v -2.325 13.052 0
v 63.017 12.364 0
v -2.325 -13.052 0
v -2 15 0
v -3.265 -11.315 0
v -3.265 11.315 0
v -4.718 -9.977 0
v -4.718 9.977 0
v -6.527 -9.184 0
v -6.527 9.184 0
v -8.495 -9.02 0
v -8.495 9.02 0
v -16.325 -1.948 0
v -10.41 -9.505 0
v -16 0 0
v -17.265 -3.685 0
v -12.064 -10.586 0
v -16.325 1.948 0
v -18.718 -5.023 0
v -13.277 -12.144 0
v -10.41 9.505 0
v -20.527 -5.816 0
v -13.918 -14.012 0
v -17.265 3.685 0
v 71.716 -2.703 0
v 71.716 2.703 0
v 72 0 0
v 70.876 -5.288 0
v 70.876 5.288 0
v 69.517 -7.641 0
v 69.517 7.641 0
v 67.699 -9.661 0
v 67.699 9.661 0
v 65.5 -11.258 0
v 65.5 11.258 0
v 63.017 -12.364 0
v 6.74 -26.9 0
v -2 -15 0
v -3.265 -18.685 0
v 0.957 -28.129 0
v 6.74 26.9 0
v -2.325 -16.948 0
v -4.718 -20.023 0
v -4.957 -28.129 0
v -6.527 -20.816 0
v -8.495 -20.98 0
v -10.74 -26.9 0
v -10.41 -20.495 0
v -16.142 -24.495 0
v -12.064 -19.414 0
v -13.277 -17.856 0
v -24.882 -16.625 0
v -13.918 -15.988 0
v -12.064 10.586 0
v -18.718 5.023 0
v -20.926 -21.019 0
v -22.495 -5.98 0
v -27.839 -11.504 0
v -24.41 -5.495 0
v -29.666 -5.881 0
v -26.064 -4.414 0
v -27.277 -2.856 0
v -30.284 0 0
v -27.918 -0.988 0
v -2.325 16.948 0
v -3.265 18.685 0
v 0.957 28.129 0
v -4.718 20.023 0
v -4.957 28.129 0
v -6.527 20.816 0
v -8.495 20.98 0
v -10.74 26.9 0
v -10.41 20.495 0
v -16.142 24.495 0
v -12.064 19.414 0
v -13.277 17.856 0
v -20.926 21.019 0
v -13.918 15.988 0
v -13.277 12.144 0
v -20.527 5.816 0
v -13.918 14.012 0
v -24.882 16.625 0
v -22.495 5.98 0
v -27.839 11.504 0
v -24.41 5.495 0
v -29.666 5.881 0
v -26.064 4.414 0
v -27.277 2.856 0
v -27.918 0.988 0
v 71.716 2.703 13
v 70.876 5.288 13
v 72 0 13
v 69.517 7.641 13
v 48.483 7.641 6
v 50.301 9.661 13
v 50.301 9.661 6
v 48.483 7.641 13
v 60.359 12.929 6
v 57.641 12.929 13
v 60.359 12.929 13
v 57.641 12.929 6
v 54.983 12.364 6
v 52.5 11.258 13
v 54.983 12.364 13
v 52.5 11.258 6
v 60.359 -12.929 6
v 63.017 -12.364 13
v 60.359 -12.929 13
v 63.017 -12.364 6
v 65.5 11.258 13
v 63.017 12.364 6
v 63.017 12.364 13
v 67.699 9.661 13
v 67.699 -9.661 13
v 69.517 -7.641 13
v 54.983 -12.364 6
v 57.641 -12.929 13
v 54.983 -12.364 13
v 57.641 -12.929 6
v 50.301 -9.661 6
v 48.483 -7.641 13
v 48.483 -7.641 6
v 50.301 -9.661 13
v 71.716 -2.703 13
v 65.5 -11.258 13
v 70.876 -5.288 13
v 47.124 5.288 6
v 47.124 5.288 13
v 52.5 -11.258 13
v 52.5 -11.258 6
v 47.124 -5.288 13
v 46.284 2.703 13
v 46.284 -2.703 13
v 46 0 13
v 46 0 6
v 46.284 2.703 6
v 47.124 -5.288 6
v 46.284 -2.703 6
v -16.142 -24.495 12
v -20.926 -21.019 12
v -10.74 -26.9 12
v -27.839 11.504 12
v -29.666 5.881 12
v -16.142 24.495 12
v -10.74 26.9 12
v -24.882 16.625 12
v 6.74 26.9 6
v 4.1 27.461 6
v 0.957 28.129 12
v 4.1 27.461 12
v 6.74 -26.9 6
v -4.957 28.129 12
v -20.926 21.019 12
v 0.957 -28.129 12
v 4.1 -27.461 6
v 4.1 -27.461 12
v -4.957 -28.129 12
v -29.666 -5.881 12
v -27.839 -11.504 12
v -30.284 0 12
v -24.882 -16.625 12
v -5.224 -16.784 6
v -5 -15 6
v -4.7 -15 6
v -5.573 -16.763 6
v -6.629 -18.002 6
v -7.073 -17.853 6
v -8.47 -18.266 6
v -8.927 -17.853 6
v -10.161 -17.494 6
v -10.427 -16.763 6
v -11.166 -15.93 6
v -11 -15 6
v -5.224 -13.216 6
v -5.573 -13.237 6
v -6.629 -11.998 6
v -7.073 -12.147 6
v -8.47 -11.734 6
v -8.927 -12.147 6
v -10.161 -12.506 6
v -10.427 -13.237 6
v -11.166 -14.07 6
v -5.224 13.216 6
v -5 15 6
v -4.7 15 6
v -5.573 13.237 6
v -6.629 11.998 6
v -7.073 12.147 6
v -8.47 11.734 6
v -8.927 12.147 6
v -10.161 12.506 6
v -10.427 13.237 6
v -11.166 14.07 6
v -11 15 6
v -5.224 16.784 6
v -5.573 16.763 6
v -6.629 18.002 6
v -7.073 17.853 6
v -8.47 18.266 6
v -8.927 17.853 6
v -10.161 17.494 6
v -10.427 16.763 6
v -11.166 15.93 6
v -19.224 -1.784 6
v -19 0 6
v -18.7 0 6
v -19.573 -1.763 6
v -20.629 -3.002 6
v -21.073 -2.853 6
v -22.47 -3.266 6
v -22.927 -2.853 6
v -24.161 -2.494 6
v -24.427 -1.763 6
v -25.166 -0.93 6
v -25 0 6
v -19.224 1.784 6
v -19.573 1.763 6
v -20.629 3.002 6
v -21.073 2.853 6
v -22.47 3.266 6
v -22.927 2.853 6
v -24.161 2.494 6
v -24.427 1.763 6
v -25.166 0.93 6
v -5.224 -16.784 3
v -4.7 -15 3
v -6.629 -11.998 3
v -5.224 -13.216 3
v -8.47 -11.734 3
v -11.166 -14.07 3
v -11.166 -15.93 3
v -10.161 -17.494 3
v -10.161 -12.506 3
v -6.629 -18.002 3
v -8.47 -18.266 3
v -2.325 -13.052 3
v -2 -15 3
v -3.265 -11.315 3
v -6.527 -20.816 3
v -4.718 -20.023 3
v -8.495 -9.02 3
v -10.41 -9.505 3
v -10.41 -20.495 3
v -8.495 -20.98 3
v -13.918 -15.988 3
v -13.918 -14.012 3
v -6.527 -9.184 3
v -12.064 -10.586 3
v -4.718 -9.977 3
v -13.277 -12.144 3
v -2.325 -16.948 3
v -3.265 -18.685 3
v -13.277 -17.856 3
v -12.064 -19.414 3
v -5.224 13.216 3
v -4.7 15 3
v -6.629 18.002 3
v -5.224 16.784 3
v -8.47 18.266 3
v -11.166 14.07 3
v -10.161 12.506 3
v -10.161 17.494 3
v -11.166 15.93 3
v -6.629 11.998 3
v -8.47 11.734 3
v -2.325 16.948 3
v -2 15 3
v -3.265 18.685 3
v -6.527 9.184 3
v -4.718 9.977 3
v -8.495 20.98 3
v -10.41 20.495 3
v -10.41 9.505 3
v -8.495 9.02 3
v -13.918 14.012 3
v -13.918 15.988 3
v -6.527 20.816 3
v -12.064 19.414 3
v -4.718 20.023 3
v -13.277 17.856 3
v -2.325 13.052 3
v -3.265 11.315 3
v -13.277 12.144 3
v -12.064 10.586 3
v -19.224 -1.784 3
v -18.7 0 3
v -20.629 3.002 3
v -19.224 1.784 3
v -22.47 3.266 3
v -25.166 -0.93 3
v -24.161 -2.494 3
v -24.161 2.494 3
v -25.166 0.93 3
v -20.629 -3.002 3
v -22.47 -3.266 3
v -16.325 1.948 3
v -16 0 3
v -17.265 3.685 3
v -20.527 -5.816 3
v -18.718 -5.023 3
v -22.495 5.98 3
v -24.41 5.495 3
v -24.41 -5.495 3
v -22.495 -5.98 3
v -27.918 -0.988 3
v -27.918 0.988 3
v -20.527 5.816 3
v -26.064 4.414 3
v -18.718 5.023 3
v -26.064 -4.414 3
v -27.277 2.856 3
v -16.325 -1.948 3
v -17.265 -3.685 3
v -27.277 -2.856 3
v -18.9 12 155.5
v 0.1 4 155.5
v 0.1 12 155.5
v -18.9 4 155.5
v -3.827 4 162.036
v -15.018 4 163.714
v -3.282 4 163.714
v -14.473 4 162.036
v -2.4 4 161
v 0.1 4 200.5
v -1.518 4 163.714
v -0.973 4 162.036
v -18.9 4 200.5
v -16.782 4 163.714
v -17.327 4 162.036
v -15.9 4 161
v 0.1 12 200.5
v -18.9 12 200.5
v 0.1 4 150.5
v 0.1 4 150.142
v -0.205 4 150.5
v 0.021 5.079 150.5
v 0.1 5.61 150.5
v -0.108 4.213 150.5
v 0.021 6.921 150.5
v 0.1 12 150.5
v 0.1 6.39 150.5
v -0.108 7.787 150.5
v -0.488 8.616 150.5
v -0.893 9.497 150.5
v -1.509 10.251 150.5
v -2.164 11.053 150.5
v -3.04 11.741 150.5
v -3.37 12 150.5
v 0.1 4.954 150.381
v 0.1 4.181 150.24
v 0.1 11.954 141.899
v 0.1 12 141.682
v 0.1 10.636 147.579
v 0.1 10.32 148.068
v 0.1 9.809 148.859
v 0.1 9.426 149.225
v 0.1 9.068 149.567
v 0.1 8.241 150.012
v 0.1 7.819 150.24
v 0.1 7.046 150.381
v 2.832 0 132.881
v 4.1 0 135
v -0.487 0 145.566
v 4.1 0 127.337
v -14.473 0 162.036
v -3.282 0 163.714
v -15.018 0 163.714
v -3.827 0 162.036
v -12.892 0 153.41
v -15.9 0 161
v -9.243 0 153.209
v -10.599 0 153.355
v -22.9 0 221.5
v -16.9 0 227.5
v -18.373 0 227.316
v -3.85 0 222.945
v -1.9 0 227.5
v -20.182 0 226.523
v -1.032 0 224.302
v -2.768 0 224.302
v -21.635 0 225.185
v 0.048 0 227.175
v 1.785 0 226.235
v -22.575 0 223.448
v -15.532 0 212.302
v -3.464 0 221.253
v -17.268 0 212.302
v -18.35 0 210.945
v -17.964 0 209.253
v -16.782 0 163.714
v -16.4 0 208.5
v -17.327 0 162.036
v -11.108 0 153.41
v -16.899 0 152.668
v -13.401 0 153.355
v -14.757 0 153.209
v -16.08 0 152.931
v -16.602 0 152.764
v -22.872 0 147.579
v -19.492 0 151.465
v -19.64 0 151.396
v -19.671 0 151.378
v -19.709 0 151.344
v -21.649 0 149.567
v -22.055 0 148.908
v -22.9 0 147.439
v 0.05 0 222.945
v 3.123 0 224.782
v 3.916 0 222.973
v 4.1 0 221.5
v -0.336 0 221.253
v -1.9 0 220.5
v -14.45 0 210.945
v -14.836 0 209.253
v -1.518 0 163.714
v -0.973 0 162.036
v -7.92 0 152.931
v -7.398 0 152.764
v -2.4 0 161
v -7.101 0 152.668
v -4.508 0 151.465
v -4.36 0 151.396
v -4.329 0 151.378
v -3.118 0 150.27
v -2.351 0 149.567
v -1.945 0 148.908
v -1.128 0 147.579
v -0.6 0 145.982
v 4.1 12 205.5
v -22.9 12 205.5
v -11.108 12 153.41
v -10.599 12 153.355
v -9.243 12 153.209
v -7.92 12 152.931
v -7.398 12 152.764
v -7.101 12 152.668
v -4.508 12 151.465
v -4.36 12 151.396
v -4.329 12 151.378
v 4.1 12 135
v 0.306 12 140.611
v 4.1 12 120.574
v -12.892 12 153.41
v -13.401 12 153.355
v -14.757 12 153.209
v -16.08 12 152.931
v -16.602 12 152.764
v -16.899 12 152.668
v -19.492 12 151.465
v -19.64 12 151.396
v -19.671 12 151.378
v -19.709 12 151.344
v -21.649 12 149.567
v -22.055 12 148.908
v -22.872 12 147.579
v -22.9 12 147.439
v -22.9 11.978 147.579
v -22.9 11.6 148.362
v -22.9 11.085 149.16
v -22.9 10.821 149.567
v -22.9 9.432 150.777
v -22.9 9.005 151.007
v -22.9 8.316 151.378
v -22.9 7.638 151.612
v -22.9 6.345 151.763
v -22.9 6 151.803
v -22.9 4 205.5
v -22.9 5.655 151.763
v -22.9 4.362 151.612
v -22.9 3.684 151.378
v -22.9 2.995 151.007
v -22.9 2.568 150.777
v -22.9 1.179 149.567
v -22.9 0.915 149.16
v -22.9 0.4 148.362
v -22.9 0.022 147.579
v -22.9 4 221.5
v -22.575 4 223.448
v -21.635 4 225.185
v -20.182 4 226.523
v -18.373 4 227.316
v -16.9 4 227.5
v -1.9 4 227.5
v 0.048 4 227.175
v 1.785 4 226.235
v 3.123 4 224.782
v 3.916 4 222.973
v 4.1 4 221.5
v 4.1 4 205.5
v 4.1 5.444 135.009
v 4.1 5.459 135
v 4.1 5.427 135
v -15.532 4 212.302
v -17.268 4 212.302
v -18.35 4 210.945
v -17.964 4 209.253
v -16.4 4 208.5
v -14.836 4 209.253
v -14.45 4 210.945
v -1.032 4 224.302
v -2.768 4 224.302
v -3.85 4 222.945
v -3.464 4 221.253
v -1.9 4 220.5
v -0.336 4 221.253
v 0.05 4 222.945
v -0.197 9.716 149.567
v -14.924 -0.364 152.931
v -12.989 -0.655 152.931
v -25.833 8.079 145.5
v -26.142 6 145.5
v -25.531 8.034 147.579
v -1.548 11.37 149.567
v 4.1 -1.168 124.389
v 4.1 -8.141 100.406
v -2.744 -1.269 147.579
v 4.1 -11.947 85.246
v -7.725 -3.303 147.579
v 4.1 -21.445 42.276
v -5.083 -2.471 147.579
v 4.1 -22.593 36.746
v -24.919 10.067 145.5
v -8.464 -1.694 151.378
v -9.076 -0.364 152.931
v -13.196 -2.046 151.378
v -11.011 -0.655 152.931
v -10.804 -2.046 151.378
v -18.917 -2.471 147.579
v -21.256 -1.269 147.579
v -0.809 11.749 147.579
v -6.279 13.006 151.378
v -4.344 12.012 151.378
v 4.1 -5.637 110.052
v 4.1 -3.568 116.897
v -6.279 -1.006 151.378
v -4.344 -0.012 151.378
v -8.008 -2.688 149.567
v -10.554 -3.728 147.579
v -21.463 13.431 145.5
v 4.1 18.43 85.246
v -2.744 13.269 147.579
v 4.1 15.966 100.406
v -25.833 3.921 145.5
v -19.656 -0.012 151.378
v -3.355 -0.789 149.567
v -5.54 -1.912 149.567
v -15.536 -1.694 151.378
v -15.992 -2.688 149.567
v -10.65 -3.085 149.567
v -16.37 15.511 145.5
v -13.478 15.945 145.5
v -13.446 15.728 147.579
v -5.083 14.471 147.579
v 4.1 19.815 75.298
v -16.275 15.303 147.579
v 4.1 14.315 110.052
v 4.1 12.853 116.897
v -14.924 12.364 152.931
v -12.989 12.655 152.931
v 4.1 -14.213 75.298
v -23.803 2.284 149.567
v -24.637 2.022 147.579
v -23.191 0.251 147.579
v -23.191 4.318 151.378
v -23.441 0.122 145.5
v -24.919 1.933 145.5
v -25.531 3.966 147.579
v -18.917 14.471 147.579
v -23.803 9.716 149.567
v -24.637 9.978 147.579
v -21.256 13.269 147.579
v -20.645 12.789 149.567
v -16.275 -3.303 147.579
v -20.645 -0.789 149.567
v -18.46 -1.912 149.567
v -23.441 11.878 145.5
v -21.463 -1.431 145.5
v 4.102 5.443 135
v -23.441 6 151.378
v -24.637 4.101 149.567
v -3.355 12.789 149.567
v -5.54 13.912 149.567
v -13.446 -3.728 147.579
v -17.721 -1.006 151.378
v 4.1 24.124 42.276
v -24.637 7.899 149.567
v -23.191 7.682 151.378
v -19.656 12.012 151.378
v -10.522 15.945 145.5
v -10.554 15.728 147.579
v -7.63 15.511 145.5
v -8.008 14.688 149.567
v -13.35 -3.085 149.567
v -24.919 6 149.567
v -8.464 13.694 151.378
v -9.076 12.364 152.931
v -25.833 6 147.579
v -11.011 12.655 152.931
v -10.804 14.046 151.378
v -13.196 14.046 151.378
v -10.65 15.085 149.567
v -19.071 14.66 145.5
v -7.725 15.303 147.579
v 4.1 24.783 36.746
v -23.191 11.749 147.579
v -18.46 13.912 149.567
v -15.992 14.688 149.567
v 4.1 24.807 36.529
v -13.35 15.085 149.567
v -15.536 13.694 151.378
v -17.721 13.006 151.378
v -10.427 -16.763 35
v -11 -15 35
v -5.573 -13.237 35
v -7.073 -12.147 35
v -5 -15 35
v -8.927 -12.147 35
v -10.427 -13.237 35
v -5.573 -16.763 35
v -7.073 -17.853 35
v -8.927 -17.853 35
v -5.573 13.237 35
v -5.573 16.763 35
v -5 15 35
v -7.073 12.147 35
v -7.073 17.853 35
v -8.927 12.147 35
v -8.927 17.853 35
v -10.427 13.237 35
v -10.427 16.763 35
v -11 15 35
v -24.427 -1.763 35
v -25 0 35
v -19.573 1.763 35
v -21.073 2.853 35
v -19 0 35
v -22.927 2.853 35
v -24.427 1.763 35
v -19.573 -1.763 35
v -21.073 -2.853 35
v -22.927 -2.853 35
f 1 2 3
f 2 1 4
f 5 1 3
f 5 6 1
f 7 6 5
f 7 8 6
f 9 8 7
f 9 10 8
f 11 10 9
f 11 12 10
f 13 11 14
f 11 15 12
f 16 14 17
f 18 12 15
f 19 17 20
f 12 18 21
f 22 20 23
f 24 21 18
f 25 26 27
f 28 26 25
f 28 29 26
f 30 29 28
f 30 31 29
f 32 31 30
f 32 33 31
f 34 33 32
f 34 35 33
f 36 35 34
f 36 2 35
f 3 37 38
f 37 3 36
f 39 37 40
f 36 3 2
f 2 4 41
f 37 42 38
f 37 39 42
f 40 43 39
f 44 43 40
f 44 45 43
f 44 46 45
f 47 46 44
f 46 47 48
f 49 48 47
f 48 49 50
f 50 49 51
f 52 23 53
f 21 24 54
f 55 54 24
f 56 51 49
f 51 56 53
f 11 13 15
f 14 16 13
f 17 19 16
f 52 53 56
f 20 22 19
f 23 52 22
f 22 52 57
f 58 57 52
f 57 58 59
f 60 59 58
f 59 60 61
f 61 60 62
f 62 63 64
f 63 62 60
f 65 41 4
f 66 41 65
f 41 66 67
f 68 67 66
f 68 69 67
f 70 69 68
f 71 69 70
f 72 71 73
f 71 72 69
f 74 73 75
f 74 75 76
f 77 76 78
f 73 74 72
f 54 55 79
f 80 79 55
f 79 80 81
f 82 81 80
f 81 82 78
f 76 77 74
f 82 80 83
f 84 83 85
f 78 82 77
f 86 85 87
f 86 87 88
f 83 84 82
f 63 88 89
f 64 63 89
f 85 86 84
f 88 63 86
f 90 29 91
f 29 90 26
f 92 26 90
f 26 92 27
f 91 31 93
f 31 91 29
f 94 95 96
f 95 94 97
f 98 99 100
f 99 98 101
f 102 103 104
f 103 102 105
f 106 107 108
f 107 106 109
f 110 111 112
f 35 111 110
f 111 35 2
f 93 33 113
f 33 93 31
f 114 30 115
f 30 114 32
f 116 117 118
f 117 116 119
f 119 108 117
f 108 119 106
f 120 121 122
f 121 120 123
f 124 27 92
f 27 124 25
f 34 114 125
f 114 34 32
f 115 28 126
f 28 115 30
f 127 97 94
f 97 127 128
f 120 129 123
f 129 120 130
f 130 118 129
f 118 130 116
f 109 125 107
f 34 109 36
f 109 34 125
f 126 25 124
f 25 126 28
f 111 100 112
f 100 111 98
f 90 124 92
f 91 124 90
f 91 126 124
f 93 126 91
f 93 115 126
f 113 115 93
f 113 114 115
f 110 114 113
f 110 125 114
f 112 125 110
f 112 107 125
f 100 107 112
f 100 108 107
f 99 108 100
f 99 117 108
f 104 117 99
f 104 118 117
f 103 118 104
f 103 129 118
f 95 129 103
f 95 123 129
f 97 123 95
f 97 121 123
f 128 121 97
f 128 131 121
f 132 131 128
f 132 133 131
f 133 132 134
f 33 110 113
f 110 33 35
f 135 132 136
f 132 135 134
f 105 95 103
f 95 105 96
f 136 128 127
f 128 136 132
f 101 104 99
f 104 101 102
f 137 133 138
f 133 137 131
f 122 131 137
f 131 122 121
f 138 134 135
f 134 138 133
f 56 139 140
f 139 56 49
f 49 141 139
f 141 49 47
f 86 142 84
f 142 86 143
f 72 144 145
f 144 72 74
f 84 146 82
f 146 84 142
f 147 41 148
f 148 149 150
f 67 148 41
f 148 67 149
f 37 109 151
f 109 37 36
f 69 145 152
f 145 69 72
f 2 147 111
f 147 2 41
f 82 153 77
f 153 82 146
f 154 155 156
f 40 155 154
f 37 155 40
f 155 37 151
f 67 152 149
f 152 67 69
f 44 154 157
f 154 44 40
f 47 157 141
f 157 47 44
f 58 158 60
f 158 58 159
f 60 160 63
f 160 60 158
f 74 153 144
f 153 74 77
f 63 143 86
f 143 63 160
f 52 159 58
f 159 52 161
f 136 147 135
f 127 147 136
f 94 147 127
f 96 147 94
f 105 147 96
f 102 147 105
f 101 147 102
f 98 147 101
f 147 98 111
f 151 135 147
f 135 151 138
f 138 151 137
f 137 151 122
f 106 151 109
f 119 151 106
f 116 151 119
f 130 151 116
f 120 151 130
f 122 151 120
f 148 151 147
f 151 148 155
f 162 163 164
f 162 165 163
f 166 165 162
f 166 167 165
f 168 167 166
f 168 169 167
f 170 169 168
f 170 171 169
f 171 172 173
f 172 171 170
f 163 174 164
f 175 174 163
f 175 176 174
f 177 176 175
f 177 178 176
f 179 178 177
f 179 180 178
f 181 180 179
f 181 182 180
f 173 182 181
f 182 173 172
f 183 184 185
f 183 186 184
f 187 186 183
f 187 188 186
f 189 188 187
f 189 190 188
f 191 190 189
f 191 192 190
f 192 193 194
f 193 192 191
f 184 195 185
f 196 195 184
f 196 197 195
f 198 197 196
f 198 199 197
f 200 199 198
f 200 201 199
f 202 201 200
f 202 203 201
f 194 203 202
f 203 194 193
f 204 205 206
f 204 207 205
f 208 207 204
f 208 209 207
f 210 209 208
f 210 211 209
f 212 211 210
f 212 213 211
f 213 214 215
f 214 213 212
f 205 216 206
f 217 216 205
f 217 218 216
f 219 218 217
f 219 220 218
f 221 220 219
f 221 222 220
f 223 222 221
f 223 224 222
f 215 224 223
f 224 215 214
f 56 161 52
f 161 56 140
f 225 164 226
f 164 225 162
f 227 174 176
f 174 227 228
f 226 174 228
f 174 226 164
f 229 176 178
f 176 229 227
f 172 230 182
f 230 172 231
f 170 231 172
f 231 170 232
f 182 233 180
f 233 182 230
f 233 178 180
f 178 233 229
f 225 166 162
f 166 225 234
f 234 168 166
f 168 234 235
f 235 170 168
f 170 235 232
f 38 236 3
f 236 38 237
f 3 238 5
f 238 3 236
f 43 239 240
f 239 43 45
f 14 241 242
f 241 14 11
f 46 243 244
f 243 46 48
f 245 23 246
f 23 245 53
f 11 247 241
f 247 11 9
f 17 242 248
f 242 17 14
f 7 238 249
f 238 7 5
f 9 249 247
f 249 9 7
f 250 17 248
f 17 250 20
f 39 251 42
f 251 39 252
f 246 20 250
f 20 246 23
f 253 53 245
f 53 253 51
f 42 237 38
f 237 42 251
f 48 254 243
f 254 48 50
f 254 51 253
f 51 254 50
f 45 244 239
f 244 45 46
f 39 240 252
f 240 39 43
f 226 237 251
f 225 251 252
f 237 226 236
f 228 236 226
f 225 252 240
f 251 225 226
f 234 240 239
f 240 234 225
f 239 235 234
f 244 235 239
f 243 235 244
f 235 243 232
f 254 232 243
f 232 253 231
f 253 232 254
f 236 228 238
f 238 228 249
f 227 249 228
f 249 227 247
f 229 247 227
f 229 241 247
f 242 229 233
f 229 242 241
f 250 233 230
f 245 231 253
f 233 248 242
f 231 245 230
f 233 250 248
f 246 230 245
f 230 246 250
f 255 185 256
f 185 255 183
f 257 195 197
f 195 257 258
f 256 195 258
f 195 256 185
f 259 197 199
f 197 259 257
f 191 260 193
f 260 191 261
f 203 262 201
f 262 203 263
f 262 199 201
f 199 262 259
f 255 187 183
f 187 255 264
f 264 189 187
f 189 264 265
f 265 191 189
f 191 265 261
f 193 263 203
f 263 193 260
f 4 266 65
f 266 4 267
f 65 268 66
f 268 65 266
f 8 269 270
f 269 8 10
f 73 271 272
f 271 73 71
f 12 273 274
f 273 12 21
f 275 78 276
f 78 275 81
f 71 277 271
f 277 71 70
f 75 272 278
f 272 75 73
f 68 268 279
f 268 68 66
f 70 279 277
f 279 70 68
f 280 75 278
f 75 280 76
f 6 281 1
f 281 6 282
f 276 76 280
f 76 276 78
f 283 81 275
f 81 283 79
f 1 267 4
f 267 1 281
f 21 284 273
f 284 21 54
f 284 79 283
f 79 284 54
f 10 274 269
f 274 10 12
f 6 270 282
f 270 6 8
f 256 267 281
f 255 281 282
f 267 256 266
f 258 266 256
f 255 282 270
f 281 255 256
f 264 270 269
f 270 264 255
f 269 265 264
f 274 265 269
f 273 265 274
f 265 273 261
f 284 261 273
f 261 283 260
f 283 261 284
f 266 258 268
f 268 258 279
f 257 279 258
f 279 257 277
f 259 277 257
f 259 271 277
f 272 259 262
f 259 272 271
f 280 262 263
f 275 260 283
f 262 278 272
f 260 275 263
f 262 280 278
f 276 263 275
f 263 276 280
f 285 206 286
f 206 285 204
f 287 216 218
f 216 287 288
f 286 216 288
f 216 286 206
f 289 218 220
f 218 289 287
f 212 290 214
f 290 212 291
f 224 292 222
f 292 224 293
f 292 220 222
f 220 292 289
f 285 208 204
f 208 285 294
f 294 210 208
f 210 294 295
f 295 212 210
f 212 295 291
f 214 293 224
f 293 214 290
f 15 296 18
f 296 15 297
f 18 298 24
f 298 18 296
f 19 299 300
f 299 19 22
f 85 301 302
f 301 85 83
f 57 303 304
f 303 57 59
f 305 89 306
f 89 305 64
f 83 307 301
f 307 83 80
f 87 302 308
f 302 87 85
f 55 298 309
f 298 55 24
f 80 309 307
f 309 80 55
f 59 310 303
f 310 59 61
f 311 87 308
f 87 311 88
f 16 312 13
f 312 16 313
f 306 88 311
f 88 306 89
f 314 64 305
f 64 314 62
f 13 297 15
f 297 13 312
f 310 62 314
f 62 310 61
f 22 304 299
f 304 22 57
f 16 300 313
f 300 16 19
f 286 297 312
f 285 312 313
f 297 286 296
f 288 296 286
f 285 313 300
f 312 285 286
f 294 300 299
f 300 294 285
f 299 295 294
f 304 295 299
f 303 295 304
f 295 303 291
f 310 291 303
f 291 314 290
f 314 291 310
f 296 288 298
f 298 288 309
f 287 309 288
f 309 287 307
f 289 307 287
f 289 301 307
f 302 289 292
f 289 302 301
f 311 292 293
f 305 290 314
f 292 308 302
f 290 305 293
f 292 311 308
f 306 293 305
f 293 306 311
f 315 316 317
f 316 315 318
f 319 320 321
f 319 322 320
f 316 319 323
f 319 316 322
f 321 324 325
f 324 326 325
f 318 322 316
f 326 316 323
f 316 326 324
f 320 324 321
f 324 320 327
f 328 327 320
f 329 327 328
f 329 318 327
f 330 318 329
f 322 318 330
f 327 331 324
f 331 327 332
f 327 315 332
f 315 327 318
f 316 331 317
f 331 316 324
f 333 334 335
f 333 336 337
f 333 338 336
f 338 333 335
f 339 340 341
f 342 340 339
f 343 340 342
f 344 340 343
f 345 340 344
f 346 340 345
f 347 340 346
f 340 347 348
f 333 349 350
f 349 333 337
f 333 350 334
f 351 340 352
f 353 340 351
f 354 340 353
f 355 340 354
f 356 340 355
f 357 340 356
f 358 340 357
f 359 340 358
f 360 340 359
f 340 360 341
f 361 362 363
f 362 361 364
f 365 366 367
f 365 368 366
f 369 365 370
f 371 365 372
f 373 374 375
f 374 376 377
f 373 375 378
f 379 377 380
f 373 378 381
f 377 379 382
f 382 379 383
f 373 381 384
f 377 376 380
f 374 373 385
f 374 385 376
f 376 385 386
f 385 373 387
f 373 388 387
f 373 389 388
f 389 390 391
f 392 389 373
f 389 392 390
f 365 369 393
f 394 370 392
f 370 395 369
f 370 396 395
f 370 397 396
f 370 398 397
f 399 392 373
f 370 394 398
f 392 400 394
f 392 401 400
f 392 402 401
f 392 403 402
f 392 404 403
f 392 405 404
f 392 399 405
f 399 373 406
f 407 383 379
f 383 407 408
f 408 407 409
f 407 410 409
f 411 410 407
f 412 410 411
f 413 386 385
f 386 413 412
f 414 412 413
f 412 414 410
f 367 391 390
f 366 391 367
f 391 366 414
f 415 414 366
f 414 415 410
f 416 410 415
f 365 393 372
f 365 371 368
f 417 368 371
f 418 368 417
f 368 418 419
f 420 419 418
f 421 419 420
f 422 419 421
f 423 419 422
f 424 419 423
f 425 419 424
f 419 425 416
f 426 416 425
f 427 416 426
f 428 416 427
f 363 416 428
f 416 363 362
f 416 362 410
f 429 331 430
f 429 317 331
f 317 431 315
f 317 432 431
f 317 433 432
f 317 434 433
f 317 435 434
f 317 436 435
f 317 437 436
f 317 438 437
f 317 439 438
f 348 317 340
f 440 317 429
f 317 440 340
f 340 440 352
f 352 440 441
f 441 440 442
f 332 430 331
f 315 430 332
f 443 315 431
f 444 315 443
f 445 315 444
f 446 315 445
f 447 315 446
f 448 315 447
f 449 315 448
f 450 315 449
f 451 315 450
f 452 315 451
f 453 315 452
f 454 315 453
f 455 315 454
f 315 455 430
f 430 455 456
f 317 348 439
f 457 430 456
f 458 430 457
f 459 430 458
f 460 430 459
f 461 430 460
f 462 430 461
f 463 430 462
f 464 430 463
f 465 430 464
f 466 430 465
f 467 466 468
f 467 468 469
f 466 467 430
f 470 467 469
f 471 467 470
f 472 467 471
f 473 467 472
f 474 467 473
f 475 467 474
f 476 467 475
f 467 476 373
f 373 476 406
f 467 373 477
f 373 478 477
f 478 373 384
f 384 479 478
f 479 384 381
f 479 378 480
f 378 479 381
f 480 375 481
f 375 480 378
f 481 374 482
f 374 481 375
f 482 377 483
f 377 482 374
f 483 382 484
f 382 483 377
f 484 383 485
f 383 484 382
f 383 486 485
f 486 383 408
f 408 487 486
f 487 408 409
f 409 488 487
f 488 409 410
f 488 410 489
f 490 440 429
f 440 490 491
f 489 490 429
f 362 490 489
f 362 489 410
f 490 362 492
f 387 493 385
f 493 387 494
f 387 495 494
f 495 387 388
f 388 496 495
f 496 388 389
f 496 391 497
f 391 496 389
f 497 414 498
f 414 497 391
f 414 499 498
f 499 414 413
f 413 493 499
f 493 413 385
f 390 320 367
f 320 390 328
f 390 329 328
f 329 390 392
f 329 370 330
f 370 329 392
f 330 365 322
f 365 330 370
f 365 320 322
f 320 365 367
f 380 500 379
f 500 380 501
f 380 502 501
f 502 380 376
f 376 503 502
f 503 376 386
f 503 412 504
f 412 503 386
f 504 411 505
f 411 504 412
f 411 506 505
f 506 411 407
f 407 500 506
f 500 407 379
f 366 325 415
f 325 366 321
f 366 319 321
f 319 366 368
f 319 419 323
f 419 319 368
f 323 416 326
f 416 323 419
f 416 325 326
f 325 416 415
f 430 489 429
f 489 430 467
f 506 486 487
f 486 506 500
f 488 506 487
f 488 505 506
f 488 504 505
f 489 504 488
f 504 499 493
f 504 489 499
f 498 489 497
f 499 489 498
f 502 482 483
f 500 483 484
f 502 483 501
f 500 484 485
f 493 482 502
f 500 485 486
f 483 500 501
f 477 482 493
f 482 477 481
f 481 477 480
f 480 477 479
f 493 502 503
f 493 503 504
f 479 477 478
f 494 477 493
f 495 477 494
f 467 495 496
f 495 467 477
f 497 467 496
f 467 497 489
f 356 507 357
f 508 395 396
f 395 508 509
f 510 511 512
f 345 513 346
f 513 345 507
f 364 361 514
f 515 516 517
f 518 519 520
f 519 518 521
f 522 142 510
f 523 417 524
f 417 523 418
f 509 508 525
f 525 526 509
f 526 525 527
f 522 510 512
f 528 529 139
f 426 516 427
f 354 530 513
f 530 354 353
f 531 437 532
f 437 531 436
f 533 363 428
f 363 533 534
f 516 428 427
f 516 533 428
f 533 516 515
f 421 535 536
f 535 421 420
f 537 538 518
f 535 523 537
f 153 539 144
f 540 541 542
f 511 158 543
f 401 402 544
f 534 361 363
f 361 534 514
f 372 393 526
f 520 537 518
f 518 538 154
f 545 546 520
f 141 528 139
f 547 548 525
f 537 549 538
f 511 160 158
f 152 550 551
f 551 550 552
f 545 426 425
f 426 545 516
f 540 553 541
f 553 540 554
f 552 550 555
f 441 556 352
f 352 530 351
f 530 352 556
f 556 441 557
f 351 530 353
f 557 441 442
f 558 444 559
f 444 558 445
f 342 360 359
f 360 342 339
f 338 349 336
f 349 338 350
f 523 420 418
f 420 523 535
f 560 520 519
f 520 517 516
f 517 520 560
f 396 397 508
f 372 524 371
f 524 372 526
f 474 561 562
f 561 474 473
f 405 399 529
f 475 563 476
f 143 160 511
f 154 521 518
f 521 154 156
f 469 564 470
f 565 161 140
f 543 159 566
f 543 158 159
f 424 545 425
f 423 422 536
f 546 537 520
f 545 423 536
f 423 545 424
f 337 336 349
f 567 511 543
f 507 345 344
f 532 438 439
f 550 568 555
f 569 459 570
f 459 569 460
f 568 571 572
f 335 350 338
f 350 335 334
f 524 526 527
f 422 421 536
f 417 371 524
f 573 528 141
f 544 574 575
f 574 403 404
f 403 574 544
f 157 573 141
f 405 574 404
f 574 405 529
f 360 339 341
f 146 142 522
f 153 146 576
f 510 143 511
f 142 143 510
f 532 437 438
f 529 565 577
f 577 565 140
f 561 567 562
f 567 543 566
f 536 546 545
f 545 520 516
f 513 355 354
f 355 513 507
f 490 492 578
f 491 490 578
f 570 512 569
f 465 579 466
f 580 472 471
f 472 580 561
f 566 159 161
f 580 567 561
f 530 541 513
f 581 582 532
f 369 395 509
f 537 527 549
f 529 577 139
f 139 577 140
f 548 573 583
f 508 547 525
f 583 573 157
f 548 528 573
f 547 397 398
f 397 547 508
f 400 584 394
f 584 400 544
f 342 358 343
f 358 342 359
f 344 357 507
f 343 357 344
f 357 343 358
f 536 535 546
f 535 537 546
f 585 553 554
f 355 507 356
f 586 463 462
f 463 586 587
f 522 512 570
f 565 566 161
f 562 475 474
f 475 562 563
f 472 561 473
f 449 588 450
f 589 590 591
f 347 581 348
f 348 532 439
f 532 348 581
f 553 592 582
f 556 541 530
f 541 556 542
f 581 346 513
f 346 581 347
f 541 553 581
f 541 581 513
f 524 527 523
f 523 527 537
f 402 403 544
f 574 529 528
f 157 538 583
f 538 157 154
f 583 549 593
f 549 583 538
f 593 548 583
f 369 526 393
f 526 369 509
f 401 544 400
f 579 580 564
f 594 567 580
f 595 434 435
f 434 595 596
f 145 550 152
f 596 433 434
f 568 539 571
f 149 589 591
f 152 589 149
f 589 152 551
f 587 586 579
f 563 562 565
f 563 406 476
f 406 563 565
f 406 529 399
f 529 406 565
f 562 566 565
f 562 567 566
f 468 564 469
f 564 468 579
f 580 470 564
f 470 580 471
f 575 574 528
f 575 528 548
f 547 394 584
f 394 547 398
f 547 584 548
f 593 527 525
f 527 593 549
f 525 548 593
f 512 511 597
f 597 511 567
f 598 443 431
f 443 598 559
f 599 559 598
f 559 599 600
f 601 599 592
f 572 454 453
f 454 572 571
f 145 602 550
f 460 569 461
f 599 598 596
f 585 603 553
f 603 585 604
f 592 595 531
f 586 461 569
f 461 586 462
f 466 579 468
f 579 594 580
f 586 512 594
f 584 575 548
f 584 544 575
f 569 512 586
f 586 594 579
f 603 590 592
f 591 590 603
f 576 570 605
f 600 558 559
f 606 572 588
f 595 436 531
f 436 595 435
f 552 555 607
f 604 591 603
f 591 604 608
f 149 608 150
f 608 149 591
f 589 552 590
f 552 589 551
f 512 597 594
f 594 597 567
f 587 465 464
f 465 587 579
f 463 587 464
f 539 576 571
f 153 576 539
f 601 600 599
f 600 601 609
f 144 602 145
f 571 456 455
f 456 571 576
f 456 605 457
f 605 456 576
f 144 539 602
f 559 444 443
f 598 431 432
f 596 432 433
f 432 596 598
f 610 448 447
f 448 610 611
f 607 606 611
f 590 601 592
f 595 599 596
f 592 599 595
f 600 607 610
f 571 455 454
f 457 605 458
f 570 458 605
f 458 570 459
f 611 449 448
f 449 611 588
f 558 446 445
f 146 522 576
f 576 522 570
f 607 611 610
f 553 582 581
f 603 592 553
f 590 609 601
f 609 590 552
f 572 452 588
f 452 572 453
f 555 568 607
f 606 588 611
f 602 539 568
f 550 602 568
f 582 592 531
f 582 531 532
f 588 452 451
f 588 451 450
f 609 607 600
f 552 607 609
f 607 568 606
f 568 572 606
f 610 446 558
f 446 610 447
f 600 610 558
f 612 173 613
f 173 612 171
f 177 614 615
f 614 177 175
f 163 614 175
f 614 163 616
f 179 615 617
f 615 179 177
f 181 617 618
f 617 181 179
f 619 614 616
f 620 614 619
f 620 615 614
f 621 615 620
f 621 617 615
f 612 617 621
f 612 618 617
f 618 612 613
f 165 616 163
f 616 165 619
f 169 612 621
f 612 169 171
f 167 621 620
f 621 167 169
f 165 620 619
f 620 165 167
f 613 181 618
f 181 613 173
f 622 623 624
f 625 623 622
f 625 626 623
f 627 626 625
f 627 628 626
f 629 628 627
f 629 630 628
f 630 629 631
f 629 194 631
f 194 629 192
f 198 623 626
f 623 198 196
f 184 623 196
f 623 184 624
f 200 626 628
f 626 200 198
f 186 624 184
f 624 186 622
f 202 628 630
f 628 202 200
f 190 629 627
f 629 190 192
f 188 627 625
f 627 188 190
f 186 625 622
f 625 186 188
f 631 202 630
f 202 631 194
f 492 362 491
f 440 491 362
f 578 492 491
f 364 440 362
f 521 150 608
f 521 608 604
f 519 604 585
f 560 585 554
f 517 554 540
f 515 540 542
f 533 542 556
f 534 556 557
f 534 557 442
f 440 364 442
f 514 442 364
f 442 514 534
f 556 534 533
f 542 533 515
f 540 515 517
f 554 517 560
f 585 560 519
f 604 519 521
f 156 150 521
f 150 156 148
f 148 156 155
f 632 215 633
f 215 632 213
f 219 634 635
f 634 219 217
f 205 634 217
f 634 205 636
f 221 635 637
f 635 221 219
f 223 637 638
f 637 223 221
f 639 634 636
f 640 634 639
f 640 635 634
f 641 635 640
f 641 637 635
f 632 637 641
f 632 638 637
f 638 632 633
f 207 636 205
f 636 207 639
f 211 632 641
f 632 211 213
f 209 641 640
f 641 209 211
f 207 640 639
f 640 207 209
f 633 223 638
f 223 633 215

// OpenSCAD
// file: beaters.scad
translate([0,21,0]) stickTip();
kickBeater();

module kickBeater() difference(){
    $fn=60;
    union(){
        cylinder(r=16,h=10);
        translate([0,0,10]) scale([1,1,0.33]) sphere(16);
    }
    translate([0,0,-1]) cylinder(r=1.5,h=5);
}

module stickTip() difference(){
    $fn=60;
    translate([0,0,3]) scale([2,1,1]) sphere(4);
    translate([0,0,-2]) cylinder(r=8,h=2);
    rotate([0,10,0]) translate([0,0,-2]) cylinder(r=1.5,h=6);
}
// file: solenoids.scad
solenoid();

module solenoid(position=0,type="JF0826B"){
    if(type=="JF0826B"){
        location = 12 - position * 10;
        color("silver") 
        difference(){
            cube([22,25,27]);
            translate([-1,2,2]) cube([24,21,22]);
            translate([4,-1,26]) cube([14,27,2]);
            translate([-1,2,26]) cube([24,21,2]);
            translate([11,12.5,-1]) cylinder(r=2,h=4);
            translate([11,12.5,3]) cylinder(r=4,h=27);
            translate([5,12.5,20.5]) 
                    rotate([-90,0,0]) cylinder(r=1.5,h=15);
            translate([17,12.5,6]) 
                    rotate([-90,0,0]) cylinder(r=1.5,h=15);
        }
        color("blue") translate([11,12.5,2]) difference(){
            cylinder(r=11,h=22);
            translate([0,0,-1]) cylinder(r=4,h=29);
        }
        color("silver") translate([11,12.5,location]) difference(){
        union(){
                cylinder(r=3.75,h=35);
                translate([0,0,26]) cylinder(r=6,h=1);
                translate([0,0,-15]) cylinder(r=1.7,h=16);
                translate([0,0,-15]) cylinder(r=3,h=3);
                translate([0,0,-15]) sphere(3);
            }
            translate([-5,-1.2,28]) cube([10,2.4,10]);
            translate([0,5,31]) rotate([90,0,0]) cylinder(r=1.25,h=10);
        }
    }
}
// file: drumClamp_DEPRECATED.scad
/*
  MIDI Driven Drumbot
  ©2024 Crunchysteve
  ----------------------
  This code will be the MIDI driven heart of SoléBot, the solenoid driven drumbot. 

  Dynamics are provided by using analogWrite() on channels that need them, or digitalWrite() for 
  the channels that don't, with a timed pulse to kick 12v solenoids with 24v for just long enough 
  to never exceed 24W RMS applied to each solenoid, even at maximum tempo. The MIDI note number 
  corresponding to each drum will determine which solenoid operates, while MIDI velocity + 127 
  applied to analogWrite() on the PWM outputs will generate soft to loud hits.

  This code will run on almost any micro, but the pins are setup for an Arduino Uno or Nano. 
  Use a dual AOD4184 MOSFET module, such as this one, 
    https://core-electronics.com.au/mosfet-power-switch-module.html, to drive each solenoid.

  I'm using JF-0826B 12v/2A 20N solenoids and, because of the light duty cycle, I run them from
  24V via the MOSFET boards. I haven't tried higher than 30v yet, but neither Solenoids nor the 
  MOSFETS run hot at 30v, even when run for extended periods. Non-blocking timing will be used to 
  pulse PWM drive just long enough to get the beater within a millimetre of the drum skin.
  
  All code, including C code and the OpenSCAD bracket 3D files, are hosted on
    https://github.com/crunchysteve/Solebot while,
  the OpenSCAD models are also hosted here 
    https://www.thingiverse.com/thing:6771931 without without C code.
  
  This code is copyright ©2024 Crunchysteve and is available for use or modification under an MIT 
  licence, except for commercial use, whereupon the author would appreciate a percentage of device 
  sales in exchange for any licence for manufacturing this project commercially.

  This preamble must always remain at the head of all 3d models and source code.
*/

use <solenoids.scad>
use <beaters.scad>

arm();
translate([0,17,4]) snareSolenoid();

module arm(){
    translate([0,17]) difference(){
        linear_extrude(height=12) difference(){
            offset(6) offset(-6)square([140,27]);
            translate([17,20.5]) circle(2);
            translate([5,6]) circle(2);
            for(x=[65,115]) for(y=[6.5,20]) 
                    translate([x,y]) circle(1.5);
        }
        translate([-1,-1,4]) cube([23,29,9]);
        for(x=[27,77]) translate([x,4,4]) cube([45,19,9]);
    }
    difference(){
        union(){
            translate([114,1,0]) cube([6,17,12]);
            translate([120,8,0]) cube([10,12,12]);
            translate([129,-16,0]) cube([17,40,12]);
            translate([122,-25,0]) cube([5,12,12]);
            translate([124,-25,0]) cube([22,8,12]);
        }
        translate([113,1,4]) 
                rotate([0,0,45]) cube([9,9,146],center=true);
        translate([121,4,6]) rotate([0,90,0]) cylinder(r=1.7,h=40);
        translate([138,4,6]) cube([3,8,16],center=true);
        translate([138,-26,6]) rotate([-90,0,0]) cylinder(r=1.7,h=40);
        translate([138,-7,6]) cube([8,3,16],center=true);
        translate([146,24,6]) 
                rotate([0,0,45]) cube([9,9,146],center=true);
    }
}

module snareSolenoid(state=false) translate([0,0,25]) rotate([-90,0,0]){
    value = state ? -11 : -4;
    solenoid();
    translate([11,12.5,value]) mirror([0,0,1]) rotate([0,-10,0]) stickTip();
}
// main file
use <drumClamp_DEPRECATED.scad>
use <solenoids.scad>
//translate([14,4,205.5]) rotate([0,-90,0]) solenoid(position=0,type="JF1250B");

//  Currently, all dimensions are solely for my tiny "kiddy kit."
//  I cheat and reuse the drumClamp bracket for the solenoid mount here.

translate([-2,0,0]) base();
translate([0,0,6]) riser();


module riser() translate([-2,0,0]) difference(){
    union(){
        hull(){
            translate([0,0,0]) 
                    scale([sqrt(2),sqrt(2),1]) cylinder(r=20,h=6);
            translate([-10,6,139.5]) 
                    scale([sqrt(2),1,1]) sphere(10);
        }
        translate([23.1,0,221.5]) rotate([0,0,0])
                rotate([270,0,0]) rotate([0,0,90]) arm();
    }
    translate([6.1,-31,-1]) cube([46,62,130]);
    for(y=[-15,15]) translate([-6,y,-1]) cylinder(r=3,h=30);
    translate([-20,0,-1]) cylinder(r=3,h=30);
}

module base() difference(){
    union(){
        translate([61,0,0]) cylinder(r=13,h=13);
        hull(){
            translate([0,0,0]) 
                    scale([sqrt(2),sqrt(2),1]) cylinder(r=20,h=6);
            translate([61,0,0]) cylinder(r=13,h=6);
        }
    }
    for(y=[-15,15]) translate([-6,y,-1]){
        cylinder(r=3.3,h=8);
        cylinder(r=6,h=4);
    }
    translate([-20,0,-1]){
        cylinder(r=3.3,h=30);
        cylinder(r=6,h=4);
    }
}
